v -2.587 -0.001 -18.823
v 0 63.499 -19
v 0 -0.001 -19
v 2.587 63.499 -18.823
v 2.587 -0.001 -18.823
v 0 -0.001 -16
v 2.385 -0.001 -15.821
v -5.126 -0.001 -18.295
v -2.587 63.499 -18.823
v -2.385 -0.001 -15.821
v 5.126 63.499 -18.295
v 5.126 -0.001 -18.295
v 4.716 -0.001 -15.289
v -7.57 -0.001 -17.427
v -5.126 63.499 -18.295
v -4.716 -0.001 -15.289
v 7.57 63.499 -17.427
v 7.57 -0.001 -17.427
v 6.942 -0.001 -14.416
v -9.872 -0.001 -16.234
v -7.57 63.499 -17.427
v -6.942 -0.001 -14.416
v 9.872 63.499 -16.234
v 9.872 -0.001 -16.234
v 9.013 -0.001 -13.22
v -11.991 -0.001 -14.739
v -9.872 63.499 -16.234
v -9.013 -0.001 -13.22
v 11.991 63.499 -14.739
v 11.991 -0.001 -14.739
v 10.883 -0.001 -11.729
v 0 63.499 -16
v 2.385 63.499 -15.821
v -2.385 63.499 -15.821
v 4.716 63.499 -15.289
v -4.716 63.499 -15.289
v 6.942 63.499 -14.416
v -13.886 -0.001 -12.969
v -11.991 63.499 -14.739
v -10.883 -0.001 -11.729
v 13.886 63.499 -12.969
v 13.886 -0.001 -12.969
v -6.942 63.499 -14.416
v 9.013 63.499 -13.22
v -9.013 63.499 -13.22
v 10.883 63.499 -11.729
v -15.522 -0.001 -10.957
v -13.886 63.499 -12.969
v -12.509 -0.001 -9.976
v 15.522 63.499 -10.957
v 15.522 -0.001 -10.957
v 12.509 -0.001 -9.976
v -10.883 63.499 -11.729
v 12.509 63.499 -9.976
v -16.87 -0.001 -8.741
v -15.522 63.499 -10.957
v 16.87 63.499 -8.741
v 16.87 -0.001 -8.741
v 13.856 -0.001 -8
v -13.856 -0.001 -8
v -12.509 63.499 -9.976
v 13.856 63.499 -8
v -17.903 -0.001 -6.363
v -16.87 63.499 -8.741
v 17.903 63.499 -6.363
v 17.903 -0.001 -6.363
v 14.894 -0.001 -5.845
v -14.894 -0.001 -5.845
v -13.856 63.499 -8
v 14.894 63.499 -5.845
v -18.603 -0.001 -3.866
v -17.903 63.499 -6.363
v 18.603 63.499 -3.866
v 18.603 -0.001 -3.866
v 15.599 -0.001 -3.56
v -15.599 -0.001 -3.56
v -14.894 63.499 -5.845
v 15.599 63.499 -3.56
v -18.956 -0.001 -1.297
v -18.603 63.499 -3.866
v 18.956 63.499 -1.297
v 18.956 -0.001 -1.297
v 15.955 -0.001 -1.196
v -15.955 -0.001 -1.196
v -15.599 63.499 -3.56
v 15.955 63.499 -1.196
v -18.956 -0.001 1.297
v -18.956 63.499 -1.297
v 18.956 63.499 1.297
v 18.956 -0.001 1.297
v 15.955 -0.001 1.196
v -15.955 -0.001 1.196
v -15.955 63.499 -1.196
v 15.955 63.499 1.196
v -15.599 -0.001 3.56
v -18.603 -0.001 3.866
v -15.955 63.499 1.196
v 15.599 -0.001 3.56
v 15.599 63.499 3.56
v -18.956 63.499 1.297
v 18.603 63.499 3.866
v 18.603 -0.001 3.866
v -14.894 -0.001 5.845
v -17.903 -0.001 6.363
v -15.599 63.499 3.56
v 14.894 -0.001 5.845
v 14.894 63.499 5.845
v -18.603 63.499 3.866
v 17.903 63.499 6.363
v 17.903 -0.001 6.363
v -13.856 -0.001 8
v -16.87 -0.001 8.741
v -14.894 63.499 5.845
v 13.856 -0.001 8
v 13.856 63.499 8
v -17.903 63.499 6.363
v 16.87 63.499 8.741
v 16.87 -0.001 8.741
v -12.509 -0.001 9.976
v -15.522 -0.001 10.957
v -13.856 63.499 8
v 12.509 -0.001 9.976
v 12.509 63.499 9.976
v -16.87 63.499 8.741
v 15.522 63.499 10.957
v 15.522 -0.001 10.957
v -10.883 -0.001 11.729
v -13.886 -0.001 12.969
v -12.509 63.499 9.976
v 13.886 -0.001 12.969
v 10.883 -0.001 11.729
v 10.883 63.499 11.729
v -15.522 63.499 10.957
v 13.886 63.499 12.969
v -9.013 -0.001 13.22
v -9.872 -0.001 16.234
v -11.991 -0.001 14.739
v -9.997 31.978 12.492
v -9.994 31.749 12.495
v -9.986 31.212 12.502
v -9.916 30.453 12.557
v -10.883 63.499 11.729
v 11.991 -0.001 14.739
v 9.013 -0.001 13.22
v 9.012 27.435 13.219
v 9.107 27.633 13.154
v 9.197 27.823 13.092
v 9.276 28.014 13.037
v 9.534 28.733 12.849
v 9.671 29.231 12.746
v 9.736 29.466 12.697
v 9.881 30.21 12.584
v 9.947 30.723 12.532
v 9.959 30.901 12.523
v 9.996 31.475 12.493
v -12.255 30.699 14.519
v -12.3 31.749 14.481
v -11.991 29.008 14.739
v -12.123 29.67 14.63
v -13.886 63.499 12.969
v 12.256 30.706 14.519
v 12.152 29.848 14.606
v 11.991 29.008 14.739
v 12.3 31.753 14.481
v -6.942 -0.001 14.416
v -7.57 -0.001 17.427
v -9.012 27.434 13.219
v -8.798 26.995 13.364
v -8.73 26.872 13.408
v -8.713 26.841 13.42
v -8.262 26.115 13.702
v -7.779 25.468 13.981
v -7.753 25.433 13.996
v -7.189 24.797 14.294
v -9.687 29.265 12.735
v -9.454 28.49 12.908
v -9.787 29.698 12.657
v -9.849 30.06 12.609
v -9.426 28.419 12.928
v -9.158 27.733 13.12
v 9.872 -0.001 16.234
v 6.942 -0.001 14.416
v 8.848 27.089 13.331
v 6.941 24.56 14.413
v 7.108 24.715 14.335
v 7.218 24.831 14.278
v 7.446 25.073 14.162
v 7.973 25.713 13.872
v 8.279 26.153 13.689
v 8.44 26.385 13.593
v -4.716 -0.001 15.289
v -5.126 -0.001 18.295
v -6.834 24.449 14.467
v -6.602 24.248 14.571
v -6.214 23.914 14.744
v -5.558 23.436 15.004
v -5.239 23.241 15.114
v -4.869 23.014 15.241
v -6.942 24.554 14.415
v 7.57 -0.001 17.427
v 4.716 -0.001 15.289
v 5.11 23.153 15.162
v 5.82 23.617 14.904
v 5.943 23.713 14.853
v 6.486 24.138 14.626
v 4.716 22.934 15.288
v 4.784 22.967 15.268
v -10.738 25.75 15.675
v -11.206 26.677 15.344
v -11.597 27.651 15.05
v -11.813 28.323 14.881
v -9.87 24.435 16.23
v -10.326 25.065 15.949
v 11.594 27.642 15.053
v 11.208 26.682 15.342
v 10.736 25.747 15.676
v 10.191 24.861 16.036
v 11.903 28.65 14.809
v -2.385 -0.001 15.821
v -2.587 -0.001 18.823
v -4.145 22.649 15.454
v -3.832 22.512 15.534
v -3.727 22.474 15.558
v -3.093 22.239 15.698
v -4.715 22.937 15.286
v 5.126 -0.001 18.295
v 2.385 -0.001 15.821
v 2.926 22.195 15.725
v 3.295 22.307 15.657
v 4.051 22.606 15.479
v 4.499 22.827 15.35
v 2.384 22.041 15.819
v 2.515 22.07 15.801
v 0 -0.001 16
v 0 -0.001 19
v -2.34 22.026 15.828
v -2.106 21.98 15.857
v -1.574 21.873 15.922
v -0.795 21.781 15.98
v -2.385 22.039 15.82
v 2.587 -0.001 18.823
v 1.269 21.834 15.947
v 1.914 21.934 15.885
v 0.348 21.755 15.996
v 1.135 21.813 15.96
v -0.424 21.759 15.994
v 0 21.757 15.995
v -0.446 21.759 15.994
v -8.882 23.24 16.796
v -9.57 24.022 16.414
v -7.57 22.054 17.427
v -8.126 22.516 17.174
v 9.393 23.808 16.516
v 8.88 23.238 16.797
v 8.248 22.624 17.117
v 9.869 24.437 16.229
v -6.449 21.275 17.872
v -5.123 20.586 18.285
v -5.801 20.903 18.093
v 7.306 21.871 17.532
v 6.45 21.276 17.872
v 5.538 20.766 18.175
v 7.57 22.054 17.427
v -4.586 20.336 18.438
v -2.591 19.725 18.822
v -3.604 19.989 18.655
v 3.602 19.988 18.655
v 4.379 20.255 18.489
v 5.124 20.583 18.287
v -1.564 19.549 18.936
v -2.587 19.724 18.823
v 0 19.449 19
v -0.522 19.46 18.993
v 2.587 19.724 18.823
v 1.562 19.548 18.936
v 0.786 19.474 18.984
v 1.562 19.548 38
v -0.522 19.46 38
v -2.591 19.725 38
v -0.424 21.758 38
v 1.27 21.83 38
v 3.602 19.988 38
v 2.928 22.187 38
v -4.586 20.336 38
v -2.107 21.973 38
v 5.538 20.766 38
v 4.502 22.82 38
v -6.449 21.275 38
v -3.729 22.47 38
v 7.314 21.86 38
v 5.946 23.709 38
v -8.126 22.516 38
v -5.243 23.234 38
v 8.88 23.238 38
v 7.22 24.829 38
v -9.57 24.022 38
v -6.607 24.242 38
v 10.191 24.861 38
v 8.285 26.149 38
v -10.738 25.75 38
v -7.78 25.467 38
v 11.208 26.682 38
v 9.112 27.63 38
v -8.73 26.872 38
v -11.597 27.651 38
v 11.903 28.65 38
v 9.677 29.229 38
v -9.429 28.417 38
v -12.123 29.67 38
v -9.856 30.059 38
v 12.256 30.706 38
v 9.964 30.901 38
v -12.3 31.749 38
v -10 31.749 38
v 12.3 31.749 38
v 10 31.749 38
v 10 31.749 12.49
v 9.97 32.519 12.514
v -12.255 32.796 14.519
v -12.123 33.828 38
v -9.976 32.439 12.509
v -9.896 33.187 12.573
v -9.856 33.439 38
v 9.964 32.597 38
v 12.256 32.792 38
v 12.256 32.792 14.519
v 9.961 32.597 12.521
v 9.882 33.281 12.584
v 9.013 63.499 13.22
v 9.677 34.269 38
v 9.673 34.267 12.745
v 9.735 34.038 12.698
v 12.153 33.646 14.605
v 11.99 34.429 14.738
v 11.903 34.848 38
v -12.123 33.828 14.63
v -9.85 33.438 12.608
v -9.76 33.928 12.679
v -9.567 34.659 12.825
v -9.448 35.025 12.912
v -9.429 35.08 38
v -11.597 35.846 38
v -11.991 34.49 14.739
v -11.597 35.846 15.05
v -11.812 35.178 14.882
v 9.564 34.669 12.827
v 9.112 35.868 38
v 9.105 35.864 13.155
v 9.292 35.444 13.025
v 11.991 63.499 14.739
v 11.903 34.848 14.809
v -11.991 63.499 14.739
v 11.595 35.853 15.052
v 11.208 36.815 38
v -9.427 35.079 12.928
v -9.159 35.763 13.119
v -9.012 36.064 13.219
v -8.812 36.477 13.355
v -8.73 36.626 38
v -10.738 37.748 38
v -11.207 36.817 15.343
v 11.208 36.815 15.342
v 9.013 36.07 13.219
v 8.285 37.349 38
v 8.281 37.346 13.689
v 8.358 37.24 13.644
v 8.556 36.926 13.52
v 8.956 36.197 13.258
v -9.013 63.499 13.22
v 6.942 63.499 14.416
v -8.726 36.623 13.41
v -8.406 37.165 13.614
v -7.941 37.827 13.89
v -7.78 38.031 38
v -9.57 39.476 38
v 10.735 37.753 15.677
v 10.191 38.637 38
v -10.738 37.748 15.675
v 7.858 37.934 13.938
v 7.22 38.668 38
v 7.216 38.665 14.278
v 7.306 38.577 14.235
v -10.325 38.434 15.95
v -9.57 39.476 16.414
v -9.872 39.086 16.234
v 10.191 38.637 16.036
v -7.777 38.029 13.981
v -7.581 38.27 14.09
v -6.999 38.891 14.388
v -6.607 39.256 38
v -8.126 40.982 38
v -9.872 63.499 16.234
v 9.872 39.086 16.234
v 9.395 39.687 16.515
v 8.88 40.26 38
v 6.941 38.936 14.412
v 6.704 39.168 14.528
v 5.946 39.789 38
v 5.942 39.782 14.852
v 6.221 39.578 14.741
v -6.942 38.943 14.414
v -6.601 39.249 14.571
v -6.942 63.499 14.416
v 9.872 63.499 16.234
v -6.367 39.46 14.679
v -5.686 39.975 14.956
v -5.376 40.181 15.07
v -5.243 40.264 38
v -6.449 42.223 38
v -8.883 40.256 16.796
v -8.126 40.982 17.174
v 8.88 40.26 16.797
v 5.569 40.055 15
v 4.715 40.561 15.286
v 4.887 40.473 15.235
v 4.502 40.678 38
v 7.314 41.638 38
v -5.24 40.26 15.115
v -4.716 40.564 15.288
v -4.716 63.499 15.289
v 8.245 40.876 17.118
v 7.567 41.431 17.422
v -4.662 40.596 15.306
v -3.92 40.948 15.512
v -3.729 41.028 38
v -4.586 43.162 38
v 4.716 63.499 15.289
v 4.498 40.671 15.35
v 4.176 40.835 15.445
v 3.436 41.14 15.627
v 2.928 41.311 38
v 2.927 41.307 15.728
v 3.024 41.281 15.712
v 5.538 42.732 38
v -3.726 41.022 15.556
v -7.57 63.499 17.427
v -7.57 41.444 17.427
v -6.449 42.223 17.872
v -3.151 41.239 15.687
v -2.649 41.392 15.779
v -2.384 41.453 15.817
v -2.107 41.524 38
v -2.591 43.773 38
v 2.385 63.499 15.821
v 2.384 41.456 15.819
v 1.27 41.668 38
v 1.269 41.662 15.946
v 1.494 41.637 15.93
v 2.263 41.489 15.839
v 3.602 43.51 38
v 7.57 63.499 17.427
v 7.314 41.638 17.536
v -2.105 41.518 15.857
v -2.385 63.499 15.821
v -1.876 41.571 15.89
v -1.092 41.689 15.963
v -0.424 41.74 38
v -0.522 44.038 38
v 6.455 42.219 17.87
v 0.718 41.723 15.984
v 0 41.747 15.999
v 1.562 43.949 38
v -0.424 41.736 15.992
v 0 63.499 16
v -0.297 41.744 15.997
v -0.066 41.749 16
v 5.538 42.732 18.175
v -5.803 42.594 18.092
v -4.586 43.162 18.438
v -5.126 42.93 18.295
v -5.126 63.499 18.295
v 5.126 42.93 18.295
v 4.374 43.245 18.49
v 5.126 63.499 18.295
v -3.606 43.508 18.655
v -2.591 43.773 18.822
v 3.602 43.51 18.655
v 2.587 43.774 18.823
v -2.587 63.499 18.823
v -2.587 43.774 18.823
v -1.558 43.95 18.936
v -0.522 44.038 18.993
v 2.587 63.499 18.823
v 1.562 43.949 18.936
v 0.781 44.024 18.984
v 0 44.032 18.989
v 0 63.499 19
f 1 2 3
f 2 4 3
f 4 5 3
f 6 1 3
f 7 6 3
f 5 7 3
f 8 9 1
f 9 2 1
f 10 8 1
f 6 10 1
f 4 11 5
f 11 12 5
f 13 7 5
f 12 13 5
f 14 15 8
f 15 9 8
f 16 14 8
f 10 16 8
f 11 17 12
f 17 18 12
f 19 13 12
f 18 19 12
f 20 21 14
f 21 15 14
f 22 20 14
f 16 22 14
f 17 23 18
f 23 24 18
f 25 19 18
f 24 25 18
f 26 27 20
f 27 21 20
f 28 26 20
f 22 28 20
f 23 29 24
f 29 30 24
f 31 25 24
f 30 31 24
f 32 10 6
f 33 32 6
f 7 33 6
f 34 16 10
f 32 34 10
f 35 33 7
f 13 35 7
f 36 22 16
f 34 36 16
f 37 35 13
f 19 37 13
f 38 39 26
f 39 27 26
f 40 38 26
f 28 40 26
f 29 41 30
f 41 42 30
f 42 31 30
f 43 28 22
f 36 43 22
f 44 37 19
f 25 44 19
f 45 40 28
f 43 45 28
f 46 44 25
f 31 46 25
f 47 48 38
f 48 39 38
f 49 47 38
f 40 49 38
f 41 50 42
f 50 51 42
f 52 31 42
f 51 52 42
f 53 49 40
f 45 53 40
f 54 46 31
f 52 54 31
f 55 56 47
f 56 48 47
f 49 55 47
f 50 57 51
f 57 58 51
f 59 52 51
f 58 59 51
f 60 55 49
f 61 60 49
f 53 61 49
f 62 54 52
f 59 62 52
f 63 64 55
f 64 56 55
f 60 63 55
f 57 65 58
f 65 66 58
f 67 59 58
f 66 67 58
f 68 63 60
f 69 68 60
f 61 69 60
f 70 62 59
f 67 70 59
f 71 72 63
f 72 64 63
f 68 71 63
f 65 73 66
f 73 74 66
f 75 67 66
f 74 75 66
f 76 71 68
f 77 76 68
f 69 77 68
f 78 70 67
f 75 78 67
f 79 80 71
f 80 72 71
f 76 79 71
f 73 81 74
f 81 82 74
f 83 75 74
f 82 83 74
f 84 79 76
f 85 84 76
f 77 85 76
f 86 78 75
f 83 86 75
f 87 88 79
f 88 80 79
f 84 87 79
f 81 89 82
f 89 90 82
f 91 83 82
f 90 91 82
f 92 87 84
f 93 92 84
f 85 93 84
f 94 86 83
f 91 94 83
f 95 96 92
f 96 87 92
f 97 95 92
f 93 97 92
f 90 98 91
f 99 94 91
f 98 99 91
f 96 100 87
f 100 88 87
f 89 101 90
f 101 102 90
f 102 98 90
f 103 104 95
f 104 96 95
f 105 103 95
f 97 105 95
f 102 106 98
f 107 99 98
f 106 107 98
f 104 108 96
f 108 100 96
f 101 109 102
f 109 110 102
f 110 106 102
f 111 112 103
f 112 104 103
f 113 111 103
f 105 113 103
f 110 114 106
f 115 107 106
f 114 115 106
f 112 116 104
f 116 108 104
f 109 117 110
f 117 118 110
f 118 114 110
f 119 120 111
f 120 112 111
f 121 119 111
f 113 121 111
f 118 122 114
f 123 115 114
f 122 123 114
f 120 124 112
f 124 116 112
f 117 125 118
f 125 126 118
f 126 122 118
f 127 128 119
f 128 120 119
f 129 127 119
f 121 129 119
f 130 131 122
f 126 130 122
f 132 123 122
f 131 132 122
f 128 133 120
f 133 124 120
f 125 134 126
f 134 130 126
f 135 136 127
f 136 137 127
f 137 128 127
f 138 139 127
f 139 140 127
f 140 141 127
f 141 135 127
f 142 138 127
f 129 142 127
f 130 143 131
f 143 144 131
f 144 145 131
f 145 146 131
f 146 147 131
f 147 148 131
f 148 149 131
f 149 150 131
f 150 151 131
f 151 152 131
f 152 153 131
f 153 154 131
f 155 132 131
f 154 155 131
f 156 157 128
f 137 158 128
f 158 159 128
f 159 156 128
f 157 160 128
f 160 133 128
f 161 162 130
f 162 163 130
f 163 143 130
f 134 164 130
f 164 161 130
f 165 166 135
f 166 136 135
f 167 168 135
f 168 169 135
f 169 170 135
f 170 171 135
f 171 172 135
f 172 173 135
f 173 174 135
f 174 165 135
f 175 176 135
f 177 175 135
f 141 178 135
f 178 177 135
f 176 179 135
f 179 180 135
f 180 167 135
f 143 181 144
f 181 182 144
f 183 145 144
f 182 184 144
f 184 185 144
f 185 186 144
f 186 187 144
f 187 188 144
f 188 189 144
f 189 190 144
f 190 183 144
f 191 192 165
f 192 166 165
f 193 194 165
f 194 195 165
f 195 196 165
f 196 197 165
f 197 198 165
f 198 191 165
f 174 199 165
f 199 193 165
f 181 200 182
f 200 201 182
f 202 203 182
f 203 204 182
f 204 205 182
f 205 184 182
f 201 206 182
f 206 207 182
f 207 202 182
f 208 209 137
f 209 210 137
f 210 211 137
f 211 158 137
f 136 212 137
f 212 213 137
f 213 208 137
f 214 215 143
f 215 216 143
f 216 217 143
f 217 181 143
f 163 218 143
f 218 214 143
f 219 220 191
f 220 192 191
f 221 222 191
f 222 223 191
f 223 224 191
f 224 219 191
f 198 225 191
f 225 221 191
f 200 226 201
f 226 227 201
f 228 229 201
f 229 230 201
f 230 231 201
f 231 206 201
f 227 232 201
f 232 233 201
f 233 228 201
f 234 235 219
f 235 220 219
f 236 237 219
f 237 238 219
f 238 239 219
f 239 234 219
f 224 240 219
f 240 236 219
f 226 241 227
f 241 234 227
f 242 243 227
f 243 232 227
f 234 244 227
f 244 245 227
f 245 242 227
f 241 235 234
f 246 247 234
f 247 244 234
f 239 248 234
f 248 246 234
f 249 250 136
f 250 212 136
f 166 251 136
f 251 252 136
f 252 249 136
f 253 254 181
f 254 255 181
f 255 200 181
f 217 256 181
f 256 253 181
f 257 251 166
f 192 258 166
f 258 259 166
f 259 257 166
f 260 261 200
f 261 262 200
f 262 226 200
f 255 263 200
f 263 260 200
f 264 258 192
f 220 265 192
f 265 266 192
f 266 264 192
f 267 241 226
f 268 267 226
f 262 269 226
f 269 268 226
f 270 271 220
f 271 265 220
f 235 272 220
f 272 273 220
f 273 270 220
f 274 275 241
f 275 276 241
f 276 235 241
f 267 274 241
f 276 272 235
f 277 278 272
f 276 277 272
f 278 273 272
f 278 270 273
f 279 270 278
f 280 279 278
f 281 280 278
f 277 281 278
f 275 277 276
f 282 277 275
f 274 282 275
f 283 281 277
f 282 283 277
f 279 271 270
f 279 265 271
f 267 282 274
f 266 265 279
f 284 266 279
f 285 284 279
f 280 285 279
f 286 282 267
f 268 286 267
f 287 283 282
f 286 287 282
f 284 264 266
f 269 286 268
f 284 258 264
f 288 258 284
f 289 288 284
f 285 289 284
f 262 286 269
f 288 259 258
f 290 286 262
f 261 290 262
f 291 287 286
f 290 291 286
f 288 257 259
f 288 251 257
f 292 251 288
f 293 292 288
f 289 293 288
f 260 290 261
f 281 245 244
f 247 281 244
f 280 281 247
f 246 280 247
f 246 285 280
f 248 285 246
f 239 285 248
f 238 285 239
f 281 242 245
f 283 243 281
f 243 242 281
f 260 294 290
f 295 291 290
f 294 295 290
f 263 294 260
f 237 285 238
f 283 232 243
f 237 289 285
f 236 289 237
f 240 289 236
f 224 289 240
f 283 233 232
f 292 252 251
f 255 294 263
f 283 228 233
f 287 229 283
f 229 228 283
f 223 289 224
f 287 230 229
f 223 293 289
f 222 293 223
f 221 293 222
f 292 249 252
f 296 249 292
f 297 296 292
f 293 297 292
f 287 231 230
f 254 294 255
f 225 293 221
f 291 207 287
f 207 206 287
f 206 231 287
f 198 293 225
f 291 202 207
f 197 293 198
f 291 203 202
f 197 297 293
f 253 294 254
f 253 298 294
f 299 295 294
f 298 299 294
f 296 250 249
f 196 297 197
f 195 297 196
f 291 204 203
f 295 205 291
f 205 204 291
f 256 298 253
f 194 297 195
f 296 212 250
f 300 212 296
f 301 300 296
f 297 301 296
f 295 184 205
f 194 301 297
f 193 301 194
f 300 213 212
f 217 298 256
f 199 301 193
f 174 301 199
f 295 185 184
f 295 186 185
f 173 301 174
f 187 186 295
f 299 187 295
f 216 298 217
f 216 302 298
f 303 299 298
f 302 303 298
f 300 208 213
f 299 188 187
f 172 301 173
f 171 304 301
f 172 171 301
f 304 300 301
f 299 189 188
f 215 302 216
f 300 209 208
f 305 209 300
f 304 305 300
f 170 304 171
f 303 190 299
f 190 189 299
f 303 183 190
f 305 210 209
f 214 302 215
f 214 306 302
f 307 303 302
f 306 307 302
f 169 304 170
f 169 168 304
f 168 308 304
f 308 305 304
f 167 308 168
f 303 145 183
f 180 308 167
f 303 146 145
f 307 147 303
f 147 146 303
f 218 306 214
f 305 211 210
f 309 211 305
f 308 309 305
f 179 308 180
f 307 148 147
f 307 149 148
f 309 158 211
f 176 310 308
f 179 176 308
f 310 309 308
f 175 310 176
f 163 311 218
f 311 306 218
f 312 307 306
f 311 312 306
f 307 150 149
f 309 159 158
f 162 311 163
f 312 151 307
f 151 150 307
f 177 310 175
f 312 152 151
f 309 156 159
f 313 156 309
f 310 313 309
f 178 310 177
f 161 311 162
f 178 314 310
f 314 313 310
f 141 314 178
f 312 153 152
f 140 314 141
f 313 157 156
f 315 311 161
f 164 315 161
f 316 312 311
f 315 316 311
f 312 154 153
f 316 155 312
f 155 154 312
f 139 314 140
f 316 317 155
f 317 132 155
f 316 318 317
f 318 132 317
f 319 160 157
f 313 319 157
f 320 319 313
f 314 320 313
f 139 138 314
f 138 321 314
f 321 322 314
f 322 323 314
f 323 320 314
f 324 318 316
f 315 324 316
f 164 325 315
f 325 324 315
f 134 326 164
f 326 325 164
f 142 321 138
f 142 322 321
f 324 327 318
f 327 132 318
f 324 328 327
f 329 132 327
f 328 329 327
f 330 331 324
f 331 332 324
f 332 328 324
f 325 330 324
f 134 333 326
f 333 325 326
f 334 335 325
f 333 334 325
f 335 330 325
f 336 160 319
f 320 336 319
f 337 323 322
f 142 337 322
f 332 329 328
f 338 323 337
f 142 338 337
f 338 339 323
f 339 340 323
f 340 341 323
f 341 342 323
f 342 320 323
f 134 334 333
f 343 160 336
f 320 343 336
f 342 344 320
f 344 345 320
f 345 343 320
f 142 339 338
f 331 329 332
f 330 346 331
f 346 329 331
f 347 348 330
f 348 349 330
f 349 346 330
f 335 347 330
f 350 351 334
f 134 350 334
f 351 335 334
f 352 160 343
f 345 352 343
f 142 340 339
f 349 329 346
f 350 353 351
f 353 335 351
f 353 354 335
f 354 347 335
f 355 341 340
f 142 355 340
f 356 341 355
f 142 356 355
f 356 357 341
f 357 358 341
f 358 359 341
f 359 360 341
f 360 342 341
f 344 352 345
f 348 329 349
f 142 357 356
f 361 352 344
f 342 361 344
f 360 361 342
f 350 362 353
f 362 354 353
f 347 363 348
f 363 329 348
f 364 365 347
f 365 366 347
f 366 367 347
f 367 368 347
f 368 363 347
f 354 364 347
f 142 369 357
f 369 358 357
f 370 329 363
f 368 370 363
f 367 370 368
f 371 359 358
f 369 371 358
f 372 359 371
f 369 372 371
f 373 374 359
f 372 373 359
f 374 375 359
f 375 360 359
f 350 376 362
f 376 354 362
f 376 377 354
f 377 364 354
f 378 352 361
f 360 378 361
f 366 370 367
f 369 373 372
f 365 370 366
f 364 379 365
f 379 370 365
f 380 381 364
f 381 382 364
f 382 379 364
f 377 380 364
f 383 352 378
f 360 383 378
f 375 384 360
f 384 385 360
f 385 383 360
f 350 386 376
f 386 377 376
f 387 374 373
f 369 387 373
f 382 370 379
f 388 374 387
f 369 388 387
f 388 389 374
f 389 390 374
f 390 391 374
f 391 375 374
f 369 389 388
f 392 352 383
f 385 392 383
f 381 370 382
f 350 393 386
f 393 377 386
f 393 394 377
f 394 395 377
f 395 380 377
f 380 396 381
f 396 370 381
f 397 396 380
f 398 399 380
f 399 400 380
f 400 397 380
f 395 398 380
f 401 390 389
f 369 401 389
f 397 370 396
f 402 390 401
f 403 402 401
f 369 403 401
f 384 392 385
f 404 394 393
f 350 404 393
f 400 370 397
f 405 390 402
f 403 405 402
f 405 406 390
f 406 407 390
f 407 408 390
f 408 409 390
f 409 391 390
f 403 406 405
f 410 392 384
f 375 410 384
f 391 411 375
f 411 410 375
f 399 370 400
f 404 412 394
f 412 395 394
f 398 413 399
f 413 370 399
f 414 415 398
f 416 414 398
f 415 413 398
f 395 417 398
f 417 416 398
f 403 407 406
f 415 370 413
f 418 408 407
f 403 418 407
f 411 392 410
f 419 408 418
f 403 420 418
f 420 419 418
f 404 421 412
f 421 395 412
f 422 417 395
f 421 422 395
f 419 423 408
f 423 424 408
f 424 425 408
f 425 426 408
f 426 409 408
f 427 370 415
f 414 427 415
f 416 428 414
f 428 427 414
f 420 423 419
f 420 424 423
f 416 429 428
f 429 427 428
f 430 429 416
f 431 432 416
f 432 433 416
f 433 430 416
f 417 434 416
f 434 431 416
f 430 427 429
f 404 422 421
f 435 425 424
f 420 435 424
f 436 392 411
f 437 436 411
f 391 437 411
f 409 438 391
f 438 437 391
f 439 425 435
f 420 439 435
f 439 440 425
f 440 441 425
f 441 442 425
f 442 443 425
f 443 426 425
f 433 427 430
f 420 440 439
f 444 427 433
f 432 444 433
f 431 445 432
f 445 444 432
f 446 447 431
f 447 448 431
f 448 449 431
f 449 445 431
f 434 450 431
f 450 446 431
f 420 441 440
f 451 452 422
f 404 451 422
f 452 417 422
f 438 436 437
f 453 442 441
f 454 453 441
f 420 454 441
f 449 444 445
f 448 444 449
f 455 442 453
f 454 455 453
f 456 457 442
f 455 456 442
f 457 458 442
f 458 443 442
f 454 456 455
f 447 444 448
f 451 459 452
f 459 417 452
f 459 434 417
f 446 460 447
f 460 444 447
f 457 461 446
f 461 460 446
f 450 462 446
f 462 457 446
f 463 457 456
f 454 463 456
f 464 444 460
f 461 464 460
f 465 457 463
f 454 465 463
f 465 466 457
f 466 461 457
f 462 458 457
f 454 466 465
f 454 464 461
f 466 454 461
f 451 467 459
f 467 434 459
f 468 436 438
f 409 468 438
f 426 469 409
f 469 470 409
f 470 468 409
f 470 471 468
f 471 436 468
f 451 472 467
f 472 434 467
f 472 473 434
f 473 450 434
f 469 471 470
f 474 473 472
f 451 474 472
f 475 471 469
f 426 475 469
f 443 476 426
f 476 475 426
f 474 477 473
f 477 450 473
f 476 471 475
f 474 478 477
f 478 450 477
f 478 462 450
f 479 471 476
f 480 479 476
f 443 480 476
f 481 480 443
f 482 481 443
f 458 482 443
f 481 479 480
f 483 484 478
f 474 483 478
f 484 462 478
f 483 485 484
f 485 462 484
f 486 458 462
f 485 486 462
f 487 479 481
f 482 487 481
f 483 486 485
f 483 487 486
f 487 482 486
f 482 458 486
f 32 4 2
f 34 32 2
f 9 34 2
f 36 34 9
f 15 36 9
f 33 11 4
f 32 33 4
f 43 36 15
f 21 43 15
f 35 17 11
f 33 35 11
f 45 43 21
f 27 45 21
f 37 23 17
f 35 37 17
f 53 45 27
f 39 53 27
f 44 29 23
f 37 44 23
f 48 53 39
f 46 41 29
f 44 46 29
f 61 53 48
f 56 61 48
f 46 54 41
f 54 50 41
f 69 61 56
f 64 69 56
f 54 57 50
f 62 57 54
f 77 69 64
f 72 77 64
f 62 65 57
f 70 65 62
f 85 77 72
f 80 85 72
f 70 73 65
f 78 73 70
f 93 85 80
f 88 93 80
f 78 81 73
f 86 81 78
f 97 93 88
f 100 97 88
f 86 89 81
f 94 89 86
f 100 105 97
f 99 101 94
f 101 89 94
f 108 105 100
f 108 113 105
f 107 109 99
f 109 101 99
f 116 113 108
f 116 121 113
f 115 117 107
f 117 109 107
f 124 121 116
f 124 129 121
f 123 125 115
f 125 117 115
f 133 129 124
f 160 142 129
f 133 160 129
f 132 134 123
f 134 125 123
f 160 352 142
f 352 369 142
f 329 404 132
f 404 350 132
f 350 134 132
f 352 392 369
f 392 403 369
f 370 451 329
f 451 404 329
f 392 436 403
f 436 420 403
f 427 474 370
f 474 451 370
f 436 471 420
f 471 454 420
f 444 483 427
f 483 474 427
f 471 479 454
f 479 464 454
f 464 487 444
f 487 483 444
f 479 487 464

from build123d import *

# Parameters (mm, degrees)
SKETCH_1_R          = 19
SKETCH_1_R_2        = 16
EXTRUDE_1_DEPTH     = 63.5
SKETCH_2_R          = 12.3
SKETCH_2_R_2        = 10
EXTRUDE_2_DEPTH     = 38
SKETCH_3_R          = 16
CUT_EXTRUDE_1_DEPTH = 64.5000001
CUT_EXTRUDE_2_REACH = 59
SKETCH_7_R          = 10


with BuildPart() as part:
    # 草图1 → 凸台-拉伸1 (new body)
    with BuildSketch(Plane(origin=(0, 0, 0), x_dir=(1, 0, 0), z_dir=(0, 1, 0))):
        Circle(SKETCH_1_R)
        Circle(SKETCH_1_R_2, mode=Mode.SUBTRACT)
    extrude(amount=EXTRUDE_1_DEPTH)

    # 草图2 → 凸台-拉伸2 (add)
    with BuildSketch(Plane.XY):
        with Locations((0, 31.75)):
            Circle(SKETCH_2_R)
        with Locations((0, 31.75)):
            Circle(SKETCH_2_R_2, mode=Mode.SUBTRACT)
    extrude(amount=EXTRUDE_2_DEPTH)

    # 草图3 → 切除-拉伸1 (cut, through all)
    with BuildSketch(Plane.XZ):
        Circle(SKETCH_3_R)
    extrude(amount=-CUT_EXTRUDE_1_DEPTH, mode=Mode.SUBTRACT)

    # 草图7 → 切除-拉伸2 (cut, up to next)
    with BuildSketch(Plane.XY.offset(38), mode=Mode.PRIVATE) as cut_extrude_2_sk1:
        with Locations((0, 31.75)):
            Circle(SKETCH_7_R)
    cut_extrude_2_tool1 = extrude(cut_extrude_2_sk1.sketch, amount=-CUT_EXTRUDE_2_REACH, mode=Mode.PRIVATE) & part.part
    add(cut_extrude_2_tool1.solids().sort_by_distance((0, 31.75, 38))[0], mode=Mode.SUBTRACT)


solid = part.part
